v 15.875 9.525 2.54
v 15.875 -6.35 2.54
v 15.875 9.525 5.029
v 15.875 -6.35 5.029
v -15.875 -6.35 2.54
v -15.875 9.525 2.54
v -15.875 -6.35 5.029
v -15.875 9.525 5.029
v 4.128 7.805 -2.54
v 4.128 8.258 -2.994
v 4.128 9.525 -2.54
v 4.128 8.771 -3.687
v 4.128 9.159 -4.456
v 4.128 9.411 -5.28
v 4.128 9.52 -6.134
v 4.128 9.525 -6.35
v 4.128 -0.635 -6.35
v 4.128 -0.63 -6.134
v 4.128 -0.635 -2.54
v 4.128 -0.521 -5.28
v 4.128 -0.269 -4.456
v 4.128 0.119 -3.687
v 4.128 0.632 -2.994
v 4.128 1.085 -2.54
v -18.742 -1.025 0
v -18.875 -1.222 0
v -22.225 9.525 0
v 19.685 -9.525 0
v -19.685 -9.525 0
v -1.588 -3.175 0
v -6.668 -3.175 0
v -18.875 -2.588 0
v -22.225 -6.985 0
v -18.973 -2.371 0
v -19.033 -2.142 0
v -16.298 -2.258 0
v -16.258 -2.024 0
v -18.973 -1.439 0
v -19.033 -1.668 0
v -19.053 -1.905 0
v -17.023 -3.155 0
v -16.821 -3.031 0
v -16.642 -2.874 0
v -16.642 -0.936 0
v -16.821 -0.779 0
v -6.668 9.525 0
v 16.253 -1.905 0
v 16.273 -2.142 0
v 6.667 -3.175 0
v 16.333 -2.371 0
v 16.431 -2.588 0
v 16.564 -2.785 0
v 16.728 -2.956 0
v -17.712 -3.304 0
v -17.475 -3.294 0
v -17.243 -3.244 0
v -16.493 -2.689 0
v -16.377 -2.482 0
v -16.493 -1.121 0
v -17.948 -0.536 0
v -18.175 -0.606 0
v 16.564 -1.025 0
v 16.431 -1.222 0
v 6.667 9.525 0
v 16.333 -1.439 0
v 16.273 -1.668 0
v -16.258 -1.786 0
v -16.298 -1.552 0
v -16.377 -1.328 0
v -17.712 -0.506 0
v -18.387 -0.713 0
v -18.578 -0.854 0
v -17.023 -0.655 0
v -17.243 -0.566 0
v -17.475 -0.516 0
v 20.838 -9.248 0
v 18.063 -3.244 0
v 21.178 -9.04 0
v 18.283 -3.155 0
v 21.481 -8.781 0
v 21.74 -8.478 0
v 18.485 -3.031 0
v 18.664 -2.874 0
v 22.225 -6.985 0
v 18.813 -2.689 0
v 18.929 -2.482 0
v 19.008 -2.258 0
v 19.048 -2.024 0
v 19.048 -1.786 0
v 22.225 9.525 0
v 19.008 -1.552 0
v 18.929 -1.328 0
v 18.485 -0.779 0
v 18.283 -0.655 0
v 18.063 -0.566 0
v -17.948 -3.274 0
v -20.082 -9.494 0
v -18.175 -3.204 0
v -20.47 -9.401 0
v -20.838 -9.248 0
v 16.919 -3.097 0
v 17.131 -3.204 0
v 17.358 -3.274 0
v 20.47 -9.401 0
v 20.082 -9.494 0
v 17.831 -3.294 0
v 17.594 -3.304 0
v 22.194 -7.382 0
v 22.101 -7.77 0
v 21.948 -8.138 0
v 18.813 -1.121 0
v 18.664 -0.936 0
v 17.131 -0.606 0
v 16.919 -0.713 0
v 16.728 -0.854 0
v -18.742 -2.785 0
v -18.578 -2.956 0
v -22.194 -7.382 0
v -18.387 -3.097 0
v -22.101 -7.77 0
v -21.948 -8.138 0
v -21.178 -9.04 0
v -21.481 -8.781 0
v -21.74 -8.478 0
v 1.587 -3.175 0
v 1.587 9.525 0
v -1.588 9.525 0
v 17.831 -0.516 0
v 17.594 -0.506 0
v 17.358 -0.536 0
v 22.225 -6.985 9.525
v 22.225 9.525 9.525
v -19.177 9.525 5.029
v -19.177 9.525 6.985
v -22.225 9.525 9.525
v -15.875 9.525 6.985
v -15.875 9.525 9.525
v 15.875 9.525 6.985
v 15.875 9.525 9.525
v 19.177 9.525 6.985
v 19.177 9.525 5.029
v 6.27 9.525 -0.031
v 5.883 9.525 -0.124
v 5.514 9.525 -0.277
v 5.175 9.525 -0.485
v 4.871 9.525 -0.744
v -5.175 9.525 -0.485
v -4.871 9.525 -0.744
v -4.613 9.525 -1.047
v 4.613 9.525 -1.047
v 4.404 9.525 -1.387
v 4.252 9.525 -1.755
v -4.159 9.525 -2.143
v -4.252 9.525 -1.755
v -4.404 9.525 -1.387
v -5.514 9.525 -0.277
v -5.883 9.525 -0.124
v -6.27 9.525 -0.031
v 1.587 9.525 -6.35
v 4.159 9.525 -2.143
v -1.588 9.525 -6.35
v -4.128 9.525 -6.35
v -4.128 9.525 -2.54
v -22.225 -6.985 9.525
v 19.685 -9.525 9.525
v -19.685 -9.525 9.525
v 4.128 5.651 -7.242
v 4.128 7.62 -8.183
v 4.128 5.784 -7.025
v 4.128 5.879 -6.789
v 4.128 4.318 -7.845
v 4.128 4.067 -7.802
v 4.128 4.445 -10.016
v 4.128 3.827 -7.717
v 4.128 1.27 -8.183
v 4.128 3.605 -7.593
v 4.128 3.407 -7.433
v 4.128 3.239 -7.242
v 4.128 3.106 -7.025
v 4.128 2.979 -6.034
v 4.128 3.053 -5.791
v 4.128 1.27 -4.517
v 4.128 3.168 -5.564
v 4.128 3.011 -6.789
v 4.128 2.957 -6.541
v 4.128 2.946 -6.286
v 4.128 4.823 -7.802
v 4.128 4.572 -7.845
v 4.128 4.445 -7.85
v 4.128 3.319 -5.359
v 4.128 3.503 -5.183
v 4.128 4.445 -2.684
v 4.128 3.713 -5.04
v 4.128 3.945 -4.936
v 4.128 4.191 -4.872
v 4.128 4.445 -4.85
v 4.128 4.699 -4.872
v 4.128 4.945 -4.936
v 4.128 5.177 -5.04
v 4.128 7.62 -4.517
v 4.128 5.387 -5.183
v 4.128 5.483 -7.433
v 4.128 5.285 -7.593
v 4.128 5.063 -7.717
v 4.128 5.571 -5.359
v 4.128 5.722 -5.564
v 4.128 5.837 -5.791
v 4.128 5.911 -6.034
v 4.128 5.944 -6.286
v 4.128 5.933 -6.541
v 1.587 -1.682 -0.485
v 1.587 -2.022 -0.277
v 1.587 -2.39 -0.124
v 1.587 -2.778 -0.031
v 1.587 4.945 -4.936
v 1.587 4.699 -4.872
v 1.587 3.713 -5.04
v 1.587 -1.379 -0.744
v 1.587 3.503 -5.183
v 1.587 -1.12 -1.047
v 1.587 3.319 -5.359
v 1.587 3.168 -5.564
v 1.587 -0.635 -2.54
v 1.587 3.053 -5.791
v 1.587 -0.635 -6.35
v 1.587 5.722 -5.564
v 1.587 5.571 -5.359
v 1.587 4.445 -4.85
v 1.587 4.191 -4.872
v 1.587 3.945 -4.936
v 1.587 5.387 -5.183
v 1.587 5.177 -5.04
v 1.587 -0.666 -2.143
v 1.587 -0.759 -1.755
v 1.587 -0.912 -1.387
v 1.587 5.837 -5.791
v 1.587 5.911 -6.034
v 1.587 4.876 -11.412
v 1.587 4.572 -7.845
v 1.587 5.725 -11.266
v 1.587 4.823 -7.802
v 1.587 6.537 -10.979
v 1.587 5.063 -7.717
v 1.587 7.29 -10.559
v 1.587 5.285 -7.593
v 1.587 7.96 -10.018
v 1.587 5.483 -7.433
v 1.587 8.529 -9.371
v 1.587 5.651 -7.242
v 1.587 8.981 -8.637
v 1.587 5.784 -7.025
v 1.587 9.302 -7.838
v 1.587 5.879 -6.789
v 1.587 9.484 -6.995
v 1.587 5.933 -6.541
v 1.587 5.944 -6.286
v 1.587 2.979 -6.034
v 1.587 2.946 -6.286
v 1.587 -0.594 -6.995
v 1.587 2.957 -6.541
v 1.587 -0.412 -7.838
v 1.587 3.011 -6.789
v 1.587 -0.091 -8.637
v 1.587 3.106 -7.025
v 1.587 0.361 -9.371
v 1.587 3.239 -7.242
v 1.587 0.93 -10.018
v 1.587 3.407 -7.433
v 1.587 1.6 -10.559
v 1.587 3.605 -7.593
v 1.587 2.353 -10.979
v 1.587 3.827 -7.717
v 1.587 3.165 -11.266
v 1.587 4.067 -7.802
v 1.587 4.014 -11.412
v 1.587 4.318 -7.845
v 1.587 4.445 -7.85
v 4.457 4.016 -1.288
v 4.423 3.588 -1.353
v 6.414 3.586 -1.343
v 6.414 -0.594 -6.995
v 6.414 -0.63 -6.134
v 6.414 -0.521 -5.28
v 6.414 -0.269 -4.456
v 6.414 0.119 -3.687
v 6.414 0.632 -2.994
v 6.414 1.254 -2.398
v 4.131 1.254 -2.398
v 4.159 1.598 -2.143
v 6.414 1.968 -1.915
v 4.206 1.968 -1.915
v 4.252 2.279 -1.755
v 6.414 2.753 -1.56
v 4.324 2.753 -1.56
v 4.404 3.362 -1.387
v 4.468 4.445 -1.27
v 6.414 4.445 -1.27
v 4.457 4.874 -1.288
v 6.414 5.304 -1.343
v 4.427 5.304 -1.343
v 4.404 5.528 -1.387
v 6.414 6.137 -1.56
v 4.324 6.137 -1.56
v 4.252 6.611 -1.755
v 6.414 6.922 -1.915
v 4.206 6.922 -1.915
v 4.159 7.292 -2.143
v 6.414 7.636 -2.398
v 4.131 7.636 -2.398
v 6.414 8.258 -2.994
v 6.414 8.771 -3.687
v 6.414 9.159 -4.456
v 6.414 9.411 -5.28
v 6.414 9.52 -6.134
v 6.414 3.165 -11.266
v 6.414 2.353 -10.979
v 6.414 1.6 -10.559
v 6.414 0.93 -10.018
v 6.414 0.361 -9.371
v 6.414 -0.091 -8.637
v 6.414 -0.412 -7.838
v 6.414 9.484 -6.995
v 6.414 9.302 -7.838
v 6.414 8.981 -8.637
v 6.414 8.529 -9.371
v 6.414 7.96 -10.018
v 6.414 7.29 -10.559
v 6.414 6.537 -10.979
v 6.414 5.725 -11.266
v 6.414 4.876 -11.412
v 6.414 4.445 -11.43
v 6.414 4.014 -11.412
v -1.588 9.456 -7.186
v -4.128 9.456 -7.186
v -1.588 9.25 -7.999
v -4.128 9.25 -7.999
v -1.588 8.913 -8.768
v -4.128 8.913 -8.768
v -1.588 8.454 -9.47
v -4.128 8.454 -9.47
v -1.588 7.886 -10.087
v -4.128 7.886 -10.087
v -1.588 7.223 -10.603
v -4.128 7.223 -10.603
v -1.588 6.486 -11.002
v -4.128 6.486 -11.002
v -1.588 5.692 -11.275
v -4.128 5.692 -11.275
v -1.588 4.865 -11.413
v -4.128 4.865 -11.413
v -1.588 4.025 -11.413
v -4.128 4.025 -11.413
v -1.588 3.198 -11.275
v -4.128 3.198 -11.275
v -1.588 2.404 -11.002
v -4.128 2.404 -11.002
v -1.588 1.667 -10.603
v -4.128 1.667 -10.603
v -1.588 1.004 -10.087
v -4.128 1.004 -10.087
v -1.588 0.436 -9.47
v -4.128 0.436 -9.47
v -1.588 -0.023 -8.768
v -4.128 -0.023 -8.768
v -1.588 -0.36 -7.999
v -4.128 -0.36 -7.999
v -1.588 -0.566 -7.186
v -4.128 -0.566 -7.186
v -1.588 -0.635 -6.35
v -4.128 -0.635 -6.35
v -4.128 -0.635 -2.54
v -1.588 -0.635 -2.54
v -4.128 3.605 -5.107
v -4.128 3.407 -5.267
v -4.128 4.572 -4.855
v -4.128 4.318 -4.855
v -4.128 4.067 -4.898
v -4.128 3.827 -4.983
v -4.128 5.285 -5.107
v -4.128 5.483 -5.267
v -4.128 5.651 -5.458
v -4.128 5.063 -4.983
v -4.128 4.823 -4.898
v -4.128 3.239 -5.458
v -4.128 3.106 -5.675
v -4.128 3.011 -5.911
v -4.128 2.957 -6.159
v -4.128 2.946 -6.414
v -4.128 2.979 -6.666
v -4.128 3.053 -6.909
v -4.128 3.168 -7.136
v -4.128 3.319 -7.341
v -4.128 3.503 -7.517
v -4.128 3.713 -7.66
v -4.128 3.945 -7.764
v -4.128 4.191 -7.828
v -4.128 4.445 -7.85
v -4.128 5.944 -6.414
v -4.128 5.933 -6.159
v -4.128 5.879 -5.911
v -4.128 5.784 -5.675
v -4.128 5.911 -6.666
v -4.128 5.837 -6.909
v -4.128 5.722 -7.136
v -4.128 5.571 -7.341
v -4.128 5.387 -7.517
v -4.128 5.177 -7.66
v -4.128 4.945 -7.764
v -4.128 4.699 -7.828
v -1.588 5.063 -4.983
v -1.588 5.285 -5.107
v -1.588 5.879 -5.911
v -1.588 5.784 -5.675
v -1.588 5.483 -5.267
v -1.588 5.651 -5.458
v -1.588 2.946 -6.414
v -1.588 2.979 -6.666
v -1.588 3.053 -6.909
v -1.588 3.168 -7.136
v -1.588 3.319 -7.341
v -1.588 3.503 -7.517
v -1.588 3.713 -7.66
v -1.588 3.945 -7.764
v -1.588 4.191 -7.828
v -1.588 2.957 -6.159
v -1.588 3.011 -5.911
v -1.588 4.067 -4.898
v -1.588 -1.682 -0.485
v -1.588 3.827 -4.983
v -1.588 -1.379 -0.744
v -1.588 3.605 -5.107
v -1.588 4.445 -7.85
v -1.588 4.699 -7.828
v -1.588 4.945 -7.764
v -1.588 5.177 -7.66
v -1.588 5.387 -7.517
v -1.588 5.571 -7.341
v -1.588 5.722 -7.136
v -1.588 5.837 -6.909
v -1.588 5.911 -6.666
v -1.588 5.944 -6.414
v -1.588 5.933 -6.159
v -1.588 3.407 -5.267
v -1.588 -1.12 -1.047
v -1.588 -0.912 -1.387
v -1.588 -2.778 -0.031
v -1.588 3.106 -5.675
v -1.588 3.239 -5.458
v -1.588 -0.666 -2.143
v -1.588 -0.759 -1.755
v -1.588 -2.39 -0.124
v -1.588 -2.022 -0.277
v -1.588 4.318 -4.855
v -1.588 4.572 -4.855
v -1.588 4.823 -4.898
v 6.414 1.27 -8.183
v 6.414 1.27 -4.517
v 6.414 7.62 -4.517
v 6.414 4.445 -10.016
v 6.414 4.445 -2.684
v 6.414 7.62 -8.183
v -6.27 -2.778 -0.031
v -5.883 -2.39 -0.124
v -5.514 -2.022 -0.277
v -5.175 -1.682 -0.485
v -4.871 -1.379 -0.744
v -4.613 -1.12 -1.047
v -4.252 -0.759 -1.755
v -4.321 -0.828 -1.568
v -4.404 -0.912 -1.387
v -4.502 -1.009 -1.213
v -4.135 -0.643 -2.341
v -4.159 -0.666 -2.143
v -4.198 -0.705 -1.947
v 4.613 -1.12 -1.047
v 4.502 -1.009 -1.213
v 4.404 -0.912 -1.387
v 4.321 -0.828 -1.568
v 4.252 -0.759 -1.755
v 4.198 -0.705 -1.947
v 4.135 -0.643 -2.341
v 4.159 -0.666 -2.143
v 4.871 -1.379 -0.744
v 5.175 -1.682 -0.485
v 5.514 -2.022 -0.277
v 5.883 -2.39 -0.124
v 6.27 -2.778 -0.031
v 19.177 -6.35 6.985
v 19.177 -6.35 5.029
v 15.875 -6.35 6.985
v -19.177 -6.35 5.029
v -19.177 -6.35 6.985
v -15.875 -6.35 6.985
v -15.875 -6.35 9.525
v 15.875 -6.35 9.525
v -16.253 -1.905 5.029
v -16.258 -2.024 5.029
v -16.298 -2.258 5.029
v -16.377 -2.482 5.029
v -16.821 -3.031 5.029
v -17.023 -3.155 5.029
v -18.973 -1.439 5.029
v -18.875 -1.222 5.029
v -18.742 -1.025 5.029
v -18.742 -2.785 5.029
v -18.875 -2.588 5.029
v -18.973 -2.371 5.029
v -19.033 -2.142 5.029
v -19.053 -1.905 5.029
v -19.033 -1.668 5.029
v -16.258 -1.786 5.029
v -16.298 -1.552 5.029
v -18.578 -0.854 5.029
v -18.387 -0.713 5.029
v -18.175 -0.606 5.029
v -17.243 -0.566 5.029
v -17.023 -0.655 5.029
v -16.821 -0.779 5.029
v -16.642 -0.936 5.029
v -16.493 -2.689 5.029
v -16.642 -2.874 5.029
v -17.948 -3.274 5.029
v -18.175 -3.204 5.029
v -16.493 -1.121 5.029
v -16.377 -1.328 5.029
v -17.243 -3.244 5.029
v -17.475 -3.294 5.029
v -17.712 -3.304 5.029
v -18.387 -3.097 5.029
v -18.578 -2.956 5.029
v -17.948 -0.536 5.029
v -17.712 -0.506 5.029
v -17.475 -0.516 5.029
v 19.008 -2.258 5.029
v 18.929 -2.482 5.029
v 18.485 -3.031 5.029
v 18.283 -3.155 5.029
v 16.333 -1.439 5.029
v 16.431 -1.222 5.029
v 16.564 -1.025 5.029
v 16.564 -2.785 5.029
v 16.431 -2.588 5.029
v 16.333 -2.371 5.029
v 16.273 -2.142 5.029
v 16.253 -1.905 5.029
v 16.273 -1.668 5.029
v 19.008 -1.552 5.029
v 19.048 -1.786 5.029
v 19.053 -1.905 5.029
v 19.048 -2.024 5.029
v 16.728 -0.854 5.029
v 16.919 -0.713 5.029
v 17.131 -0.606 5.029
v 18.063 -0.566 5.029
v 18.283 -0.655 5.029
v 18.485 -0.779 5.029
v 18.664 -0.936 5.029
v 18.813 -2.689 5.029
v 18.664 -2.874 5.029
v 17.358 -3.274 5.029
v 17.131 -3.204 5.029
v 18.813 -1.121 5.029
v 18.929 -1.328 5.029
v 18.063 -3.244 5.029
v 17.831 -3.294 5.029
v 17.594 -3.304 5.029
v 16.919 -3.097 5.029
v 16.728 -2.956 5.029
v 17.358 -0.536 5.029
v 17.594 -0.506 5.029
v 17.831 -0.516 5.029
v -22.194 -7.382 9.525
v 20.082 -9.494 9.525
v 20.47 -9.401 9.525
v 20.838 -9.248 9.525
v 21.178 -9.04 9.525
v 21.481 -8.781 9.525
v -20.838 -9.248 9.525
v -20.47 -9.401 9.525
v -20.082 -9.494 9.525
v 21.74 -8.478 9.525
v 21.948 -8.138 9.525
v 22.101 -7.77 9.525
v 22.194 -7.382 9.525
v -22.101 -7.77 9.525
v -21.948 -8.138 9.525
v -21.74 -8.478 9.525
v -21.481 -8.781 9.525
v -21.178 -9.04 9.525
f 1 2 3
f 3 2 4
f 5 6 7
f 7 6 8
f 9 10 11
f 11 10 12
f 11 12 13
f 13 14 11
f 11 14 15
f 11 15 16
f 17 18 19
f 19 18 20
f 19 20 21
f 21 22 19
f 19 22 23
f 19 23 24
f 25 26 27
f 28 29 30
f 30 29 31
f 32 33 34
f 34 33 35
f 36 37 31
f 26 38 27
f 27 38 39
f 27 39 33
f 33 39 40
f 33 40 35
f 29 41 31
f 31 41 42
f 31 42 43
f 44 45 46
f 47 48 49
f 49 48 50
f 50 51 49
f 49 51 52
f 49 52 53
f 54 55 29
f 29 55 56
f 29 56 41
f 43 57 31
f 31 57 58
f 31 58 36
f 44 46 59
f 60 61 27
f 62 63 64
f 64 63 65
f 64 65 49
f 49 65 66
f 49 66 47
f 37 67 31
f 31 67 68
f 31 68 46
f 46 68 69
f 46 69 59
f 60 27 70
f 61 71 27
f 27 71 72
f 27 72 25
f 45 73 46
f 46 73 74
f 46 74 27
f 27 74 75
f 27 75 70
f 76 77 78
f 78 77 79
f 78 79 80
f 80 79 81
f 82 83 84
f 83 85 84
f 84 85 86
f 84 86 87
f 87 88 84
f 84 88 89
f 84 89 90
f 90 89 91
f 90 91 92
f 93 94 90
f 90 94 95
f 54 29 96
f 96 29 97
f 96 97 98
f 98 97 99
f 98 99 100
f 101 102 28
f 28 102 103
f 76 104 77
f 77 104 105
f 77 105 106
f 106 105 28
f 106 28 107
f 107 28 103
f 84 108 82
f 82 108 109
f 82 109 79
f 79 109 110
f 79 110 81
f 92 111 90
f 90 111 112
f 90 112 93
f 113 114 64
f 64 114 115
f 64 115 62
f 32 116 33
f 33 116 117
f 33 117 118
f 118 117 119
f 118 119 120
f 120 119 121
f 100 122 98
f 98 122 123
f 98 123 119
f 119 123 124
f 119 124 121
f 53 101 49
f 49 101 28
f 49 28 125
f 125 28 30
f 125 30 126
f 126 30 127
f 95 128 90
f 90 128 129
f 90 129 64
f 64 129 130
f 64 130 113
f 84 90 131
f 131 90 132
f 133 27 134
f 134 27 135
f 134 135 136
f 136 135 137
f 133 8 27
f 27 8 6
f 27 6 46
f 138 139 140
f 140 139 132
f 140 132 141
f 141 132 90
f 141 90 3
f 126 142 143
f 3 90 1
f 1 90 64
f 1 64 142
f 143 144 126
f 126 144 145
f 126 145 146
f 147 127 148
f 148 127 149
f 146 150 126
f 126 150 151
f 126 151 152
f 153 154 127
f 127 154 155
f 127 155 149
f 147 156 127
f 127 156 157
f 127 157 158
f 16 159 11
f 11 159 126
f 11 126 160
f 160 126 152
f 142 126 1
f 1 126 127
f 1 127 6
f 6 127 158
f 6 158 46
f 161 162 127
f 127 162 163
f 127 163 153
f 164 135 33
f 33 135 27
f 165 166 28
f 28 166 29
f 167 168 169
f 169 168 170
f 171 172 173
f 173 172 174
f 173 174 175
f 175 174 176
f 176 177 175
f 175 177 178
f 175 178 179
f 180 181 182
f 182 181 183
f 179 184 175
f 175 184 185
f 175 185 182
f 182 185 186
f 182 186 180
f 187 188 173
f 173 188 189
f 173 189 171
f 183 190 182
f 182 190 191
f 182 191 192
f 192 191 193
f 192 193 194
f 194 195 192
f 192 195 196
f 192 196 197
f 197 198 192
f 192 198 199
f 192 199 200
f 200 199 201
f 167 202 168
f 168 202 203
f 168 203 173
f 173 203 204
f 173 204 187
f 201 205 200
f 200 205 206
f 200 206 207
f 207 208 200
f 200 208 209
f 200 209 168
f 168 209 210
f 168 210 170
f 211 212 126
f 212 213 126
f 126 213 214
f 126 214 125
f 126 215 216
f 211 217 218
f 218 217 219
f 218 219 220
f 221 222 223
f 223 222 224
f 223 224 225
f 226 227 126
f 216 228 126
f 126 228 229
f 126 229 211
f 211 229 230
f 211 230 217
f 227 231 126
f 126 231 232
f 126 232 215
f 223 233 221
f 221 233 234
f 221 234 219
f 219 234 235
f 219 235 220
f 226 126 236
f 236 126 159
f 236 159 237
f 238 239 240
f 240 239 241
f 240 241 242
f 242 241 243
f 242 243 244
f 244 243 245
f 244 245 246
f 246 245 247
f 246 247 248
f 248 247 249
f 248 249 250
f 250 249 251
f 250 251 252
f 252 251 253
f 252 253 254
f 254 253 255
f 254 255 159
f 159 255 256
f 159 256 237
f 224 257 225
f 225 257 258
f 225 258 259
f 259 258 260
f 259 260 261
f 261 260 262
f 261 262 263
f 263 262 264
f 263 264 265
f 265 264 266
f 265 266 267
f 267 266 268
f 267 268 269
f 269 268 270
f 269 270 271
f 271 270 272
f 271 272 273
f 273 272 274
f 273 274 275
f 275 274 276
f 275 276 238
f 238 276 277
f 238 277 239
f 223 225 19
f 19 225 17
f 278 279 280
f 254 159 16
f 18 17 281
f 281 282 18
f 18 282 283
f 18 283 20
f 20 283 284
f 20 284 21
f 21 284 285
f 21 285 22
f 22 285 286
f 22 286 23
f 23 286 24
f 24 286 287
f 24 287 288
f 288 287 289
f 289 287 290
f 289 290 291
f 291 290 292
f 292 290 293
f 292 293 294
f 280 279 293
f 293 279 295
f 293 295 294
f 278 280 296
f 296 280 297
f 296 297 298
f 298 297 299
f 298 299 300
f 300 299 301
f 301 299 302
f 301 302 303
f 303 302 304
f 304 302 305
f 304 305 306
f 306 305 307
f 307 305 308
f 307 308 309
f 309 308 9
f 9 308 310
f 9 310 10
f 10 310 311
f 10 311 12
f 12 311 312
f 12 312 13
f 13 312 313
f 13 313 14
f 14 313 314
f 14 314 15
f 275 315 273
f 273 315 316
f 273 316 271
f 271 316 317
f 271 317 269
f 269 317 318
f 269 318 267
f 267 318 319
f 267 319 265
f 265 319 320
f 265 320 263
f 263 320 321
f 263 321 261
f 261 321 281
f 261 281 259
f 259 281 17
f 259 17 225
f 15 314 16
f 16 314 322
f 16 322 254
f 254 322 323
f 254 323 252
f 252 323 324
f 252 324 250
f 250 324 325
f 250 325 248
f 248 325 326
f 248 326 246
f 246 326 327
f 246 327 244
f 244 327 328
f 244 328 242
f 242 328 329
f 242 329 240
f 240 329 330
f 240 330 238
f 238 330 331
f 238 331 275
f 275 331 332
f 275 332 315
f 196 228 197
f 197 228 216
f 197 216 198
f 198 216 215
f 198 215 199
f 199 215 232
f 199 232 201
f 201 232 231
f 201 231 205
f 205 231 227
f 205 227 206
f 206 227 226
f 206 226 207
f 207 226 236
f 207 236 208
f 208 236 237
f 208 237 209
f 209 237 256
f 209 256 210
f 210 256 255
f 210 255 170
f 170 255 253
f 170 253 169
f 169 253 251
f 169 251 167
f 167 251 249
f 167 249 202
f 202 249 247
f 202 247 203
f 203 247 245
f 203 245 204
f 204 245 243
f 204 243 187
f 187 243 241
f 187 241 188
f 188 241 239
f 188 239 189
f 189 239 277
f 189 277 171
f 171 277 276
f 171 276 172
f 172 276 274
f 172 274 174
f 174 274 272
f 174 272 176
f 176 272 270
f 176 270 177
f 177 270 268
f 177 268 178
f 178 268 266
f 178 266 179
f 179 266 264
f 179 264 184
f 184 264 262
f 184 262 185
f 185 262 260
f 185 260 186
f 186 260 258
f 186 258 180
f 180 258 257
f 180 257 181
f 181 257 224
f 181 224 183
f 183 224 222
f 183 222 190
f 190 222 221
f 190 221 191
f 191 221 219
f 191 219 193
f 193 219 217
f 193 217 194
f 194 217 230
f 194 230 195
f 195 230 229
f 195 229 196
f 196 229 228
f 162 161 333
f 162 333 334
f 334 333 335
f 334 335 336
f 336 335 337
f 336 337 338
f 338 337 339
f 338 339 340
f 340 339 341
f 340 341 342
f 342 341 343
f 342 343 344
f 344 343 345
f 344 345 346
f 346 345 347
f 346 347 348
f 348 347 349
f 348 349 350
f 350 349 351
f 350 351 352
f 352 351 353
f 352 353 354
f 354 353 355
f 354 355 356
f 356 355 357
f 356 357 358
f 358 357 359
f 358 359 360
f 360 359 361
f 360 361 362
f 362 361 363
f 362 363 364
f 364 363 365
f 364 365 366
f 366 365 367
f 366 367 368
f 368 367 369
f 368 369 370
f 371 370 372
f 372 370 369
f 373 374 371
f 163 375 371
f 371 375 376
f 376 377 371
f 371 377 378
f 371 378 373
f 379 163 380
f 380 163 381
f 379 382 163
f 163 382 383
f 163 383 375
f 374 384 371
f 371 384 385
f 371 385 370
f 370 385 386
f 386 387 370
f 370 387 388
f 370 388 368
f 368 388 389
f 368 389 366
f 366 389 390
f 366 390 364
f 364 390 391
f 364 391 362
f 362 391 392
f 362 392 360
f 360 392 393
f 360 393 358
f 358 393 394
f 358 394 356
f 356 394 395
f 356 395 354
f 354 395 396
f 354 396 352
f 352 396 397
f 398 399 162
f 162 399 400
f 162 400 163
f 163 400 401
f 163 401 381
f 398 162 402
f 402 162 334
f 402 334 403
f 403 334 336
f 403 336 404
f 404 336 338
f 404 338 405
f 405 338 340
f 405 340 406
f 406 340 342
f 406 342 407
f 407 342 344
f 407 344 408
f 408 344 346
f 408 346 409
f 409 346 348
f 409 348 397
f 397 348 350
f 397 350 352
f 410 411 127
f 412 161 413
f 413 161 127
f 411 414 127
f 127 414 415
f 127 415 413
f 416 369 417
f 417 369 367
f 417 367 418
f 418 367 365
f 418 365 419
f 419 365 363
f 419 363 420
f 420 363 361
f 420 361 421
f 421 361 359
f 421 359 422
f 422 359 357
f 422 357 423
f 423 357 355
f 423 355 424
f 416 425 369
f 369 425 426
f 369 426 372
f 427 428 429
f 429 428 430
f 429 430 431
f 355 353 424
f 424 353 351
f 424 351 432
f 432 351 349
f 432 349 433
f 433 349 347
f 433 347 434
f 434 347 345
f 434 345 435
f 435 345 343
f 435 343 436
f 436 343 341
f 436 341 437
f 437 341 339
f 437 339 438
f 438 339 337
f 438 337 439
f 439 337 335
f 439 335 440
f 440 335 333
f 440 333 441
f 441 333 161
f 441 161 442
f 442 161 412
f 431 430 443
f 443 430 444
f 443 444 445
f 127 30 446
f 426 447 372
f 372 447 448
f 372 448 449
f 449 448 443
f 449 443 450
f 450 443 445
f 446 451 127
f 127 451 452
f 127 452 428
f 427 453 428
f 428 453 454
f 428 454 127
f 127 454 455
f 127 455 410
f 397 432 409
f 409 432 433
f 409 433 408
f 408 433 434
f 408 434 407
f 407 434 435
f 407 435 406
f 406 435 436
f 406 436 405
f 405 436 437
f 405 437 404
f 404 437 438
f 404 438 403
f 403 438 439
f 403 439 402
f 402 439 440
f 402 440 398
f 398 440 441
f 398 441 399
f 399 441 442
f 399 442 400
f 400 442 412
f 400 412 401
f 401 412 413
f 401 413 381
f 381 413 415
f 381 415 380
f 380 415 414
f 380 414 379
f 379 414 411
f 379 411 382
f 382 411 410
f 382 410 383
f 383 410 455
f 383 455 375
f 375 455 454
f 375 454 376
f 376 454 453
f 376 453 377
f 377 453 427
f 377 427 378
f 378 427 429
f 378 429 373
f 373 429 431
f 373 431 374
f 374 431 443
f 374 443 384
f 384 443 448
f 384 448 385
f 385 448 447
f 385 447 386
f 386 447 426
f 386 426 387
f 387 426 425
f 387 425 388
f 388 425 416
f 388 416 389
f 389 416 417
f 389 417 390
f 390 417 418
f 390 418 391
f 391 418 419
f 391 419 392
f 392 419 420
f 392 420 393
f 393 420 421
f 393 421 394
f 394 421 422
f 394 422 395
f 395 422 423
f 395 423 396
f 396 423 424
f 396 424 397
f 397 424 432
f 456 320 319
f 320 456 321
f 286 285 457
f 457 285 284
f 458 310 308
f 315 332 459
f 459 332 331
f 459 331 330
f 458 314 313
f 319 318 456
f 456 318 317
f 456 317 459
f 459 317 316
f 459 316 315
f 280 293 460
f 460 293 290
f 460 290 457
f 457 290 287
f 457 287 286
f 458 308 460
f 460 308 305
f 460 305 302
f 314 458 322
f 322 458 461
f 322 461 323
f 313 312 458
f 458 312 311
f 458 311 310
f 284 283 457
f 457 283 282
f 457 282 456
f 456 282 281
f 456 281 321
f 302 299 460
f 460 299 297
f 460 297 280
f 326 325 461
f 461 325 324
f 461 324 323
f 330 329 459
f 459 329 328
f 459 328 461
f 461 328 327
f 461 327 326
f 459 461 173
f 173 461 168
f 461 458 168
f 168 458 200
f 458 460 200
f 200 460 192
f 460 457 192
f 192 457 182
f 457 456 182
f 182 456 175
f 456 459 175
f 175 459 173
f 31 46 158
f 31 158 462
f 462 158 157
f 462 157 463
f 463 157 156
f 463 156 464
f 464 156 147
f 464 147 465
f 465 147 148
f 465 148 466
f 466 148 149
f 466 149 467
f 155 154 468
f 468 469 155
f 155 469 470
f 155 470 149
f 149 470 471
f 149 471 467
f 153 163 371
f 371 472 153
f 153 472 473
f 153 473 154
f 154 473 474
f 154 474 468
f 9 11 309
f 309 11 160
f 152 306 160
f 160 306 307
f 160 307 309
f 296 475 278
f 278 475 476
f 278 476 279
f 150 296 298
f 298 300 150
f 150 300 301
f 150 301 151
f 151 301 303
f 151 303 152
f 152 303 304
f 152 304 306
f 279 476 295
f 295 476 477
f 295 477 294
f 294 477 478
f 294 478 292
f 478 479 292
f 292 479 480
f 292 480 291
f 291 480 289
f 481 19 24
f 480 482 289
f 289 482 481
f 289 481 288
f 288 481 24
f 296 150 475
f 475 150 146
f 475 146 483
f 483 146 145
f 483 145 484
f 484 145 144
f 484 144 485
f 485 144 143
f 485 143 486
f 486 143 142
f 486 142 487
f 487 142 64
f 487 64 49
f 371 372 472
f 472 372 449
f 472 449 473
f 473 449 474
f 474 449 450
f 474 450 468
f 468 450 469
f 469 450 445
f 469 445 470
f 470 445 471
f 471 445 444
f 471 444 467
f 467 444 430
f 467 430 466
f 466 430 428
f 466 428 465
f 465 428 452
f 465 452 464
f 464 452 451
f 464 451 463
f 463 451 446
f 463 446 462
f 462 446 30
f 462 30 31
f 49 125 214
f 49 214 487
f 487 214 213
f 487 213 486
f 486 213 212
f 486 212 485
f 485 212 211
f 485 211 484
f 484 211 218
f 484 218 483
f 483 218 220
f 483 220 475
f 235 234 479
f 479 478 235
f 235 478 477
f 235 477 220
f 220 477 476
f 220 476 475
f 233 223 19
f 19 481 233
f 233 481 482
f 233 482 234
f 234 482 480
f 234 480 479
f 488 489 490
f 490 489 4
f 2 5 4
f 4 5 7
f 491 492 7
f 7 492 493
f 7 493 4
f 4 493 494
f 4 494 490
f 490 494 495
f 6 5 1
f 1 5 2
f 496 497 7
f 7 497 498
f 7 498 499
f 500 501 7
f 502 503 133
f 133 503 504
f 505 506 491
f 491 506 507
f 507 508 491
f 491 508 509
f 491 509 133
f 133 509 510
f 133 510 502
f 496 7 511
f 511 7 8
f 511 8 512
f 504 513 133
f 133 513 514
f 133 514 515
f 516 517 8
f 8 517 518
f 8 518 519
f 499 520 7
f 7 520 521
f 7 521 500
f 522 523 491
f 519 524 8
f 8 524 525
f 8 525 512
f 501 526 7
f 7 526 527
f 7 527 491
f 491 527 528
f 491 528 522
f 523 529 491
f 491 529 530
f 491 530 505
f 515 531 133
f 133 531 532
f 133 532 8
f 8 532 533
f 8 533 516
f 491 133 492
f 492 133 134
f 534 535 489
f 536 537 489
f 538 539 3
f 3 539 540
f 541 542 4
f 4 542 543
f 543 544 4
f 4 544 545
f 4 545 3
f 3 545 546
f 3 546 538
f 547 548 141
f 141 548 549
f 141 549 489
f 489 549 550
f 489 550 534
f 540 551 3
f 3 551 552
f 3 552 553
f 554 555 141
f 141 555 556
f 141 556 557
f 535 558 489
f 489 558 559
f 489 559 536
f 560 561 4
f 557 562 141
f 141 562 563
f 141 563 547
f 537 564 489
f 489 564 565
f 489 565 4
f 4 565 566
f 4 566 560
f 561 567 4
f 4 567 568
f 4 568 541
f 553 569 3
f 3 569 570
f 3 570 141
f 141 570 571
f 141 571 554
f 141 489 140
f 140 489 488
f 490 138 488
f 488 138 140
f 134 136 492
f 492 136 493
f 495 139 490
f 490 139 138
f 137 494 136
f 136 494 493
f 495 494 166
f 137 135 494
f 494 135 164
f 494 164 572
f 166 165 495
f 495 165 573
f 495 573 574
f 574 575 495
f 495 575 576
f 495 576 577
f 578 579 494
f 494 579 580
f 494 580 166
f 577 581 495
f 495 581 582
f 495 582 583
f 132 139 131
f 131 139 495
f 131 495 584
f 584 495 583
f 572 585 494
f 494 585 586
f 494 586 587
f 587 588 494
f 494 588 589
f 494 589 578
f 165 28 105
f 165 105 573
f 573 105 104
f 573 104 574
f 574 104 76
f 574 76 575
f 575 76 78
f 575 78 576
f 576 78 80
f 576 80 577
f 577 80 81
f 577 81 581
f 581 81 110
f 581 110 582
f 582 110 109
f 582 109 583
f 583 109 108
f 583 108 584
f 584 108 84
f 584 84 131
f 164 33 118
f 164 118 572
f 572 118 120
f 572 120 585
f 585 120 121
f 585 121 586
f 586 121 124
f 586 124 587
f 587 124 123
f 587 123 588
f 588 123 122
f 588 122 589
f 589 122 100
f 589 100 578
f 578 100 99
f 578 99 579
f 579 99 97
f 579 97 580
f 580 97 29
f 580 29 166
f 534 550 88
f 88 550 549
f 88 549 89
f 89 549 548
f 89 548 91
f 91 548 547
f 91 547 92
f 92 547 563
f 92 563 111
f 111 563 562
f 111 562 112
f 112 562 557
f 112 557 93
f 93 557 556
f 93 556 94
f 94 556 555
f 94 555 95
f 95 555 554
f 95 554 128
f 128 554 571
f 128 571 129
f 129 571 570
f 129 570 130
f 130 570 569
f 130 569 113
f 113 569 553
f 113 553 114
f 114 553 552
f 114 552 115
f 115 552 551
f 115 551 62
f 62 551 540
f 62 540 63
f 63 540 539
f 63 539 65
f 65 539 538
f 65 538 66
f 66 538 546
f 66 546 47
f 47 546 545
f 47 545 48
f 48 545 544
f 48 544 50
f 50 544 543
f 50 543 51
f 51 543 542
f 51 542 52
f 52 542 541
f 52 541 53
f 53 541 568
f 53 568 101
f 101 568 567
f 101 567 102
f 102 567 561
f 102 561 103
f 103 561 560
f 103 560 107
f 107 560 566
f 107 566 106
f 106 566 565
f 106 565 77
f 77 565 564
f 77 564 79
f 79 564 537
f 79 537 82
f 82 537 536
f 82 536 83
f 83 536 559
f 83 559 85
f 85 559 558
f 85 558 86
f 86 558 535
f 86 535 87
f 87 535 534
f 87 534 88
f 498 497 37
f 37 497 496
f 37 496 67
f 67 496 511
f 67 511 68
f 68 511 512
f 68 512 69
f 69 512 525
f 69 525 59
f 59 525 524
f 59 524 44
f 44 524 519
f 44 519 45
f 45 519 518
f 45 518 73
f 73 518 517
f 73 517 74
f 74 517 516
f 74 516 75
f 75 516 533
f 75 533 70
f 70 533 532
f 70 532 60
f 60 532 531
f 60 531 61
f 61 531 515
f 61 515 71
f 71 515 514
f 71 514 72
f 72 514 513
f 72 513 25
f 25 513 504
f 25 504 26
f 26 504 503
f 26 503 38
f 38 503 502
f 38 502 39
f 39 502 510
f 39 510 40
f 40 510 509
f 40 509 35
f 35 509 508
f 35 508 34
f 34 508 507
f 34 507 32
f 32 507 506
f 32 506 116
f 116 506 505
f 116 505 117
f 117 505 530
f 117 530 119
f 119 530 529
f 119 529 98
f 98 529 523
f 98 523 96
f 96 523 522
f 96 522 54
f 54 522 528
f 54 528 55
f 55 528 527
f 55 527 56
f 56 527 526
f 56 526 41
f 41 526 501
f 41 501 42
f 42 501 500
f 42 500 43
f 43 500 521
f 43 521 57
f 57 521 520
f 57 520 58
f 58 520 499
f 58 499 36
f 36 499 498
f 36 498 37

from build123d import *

# Parameters (mm, degrees)
SKETCH1_W           = 44.45
SKETCH1_H           = 19.05
BOSS_EXTRUDE1_DEPTH = 6.985
BOSS_EXTRUDE3_START = 1.5875
SKETCH4_R           = 1.5
BOSS_EXTRUDE3_DEPTH = 2.54
SKETCH5_R           = 5.08
BOSS_EXTRUDE4_DEPTH = 2.286
FILLET3_R           = 2.54
FILLET4_R           = 2.54
SKETCH7_W           = 31.75
SKETCH7_H           = 15.875
CUT_EXTRUDE1_DEPTH  = 4.445
SKETCH8_W           = 38.354
SKETCH8_H           = 15.875
CUT_EXTRUDE2_DEPTH  = 1.9558
BOSS_EXTRUDE5_DEPTH = 2.54
FILLET5_R           = 2.54
SKETCH12_R          = 1.4
CUT_EXTRUDE5_DEPTH  = 6.985


with BuildPart() as part:
    # Sketch1 → Boss-Extrude1 (new body)
    with BuildSketch(Plane.XY):
        Rectangle(SKETCH1_W, SKETCH1_H)
    extrude(amount=BOSS_EXTRUDE1_DEPTH)

    # Sketch4 → Boss-Extrude3 (add)
    with BuildSketch(Plane(origin=(0, 0, 0), x_dir=(0, 0, -1), z_dir=(1, 0, 0)).offset(BOSS_EXTRUDE3_START)):
        with BuildLine():
            Line((0, 9.525), (6.35, 9.525))
            ThreePointArc((6.35, 9.525), (11.43, 4.445), (6.35, -0.635))
            Line((6.35, -0.635), (0, -0.635))
            Line((0, -0.635), (0, 9.525))
        make_face()
        with Locations((6.35, 4.445)):
            Circle(SKETCH4_R, mode=Mode.SUBTRACT)
    boss_extrude3 = extrude(amount=BOSS_EXTRUDE3_DEPTH)

    # Mirror1: Boss-Extrude3 across plane
    add(boss_extrude3.mirror(Plane(origin=(0, 0, 0), x_dir=(0, 0, 1), z_dir=(1, 0, 0))))

    # Sketch5 → Boss-Extrude4 (add)
    with BuildSketch(Plane(origin=(4.1275, 0, 0), x_dir=(0, 0, -1), z_dir=(1, 0, 0))):
        with Locations(Location((6.35, 4.445, 0), (0, 0, 90))):
            Circle(SKETCH5_R)
        Polygon((8.183087105, 7.62), (4.516912895, 7.62), (2.683825791, 4.445), (4.516912895, 1.27), (8.183087105, 1.27), (10.016174209, 4.445), align=None, mode=Mode.SUBTRACT)
    extrude(amount=BOSS_EXTRUDE4_DEPTH)

    # Fillet3
    # the kernel refuses this fillet: 2.54 mm, written as the material it adds along each edge
    with BuildSketch(Plane(origin=(-4.1275, -0.635, 0), x_dir=(-1, 0, 0), z_dir=(0, 1, 0))) as fillet3_piece_1:
        with BuildLine():
            CenterArc((FILLET3_R, -FILLET3_R), FILLET3_R, 90, 90)
            Line((0, -FILLET3_R), (0, 0))
            Line((0, 0), (FILLET3_R, 0))
        make_face()
    extrude(amount=10.16)
    with BuildSketch(Plane(origin=(4.1275, -0.635, 0), x_dir=(1, 0, 0), z_dir=(0, 1, 0))) as fillet3_piece_2:
        with BuildLine():
            CenterArc((FILLET3_R, FILLET3_R), FILLET3_R, 180, 90)
            Line((0, FILLET3_R), (0, 0))
            Line((0, 0), (FILLET3_R, 0))
        make_face()
    extrude(amount=10.16)

    # Fillet4
    fillet4_edges = [part.edges().sort_by_distance(p)[0] for p in [
        (-4.1275, -0.635, 0),
        (4.1275, -0.635, 0),
    ]]
    fillet(fillet4_edges, radius=FILLET4_R)

    # Sketch7 → Cut-Extrude1 (cut)
    with BuildSketch(Plane.XY.offset(6.985)):
        with Locations((0, 1.5875)):
            Rectangle(SKETCH7_W, SKETCH7_H)
    extrude(amount=-CUT_EXTRUDE1_DEPTH, mode=Mode.SUBTRACT)

    # Sketch8 → Cut-Extrude2 (cut)
    with BuildSketch(Plane.XY.offset(6.985)):
        with Locations((0, 1.5875)):
            Rectangle(SKETCH8_W, SKETCH8_H)
    extrude(amount=-CUT_EXTRUDE2_DEPTH, mode=Mode.SUBTRACT)

    # Sketch9 → Boss-Extrude5 (add)
    with BuildSketch(Plane.XY.offset(6.985)):
        Polygon((-22.225, 9.525), (-15.875, 9.525), (-15.875, -6.35), (15.875, -6.35), (15.875, 9.525), (22.225, 9.525), (22.225, -9.525), (-22.225, -9.525), align=None)
    extrude(amount=BOSS_EXTRUDE5_DEPTH)

    # Fillet5
    fillet5_edges = [part.edges().sort_by_distance(p)[0] for p in [
        (22.225, -9.525, 4.7625),
        (-22.225, -9.525, 4.7625),
    ]]
    fillet(fillet5_edges, radius=FILLET5_R)

    # Sketch12 → Cut-Extrude5 (cut)
    with BuildSketch(Plane(origin=(0, 0, 0), x_dir=(-1, 0, 0), z_dir=(0, 0, -1))):
        with Locations((-17.653, -1.905)):
            Circle(SKETCH12_R)
        with Locations((17.653, -1.905)):
            Circle(SKETCH12_R)
    extrude(amount=-CUT_EXTRUDE5_DEPTH, mode=Mode.SUBTRACT)


solid = part.part
